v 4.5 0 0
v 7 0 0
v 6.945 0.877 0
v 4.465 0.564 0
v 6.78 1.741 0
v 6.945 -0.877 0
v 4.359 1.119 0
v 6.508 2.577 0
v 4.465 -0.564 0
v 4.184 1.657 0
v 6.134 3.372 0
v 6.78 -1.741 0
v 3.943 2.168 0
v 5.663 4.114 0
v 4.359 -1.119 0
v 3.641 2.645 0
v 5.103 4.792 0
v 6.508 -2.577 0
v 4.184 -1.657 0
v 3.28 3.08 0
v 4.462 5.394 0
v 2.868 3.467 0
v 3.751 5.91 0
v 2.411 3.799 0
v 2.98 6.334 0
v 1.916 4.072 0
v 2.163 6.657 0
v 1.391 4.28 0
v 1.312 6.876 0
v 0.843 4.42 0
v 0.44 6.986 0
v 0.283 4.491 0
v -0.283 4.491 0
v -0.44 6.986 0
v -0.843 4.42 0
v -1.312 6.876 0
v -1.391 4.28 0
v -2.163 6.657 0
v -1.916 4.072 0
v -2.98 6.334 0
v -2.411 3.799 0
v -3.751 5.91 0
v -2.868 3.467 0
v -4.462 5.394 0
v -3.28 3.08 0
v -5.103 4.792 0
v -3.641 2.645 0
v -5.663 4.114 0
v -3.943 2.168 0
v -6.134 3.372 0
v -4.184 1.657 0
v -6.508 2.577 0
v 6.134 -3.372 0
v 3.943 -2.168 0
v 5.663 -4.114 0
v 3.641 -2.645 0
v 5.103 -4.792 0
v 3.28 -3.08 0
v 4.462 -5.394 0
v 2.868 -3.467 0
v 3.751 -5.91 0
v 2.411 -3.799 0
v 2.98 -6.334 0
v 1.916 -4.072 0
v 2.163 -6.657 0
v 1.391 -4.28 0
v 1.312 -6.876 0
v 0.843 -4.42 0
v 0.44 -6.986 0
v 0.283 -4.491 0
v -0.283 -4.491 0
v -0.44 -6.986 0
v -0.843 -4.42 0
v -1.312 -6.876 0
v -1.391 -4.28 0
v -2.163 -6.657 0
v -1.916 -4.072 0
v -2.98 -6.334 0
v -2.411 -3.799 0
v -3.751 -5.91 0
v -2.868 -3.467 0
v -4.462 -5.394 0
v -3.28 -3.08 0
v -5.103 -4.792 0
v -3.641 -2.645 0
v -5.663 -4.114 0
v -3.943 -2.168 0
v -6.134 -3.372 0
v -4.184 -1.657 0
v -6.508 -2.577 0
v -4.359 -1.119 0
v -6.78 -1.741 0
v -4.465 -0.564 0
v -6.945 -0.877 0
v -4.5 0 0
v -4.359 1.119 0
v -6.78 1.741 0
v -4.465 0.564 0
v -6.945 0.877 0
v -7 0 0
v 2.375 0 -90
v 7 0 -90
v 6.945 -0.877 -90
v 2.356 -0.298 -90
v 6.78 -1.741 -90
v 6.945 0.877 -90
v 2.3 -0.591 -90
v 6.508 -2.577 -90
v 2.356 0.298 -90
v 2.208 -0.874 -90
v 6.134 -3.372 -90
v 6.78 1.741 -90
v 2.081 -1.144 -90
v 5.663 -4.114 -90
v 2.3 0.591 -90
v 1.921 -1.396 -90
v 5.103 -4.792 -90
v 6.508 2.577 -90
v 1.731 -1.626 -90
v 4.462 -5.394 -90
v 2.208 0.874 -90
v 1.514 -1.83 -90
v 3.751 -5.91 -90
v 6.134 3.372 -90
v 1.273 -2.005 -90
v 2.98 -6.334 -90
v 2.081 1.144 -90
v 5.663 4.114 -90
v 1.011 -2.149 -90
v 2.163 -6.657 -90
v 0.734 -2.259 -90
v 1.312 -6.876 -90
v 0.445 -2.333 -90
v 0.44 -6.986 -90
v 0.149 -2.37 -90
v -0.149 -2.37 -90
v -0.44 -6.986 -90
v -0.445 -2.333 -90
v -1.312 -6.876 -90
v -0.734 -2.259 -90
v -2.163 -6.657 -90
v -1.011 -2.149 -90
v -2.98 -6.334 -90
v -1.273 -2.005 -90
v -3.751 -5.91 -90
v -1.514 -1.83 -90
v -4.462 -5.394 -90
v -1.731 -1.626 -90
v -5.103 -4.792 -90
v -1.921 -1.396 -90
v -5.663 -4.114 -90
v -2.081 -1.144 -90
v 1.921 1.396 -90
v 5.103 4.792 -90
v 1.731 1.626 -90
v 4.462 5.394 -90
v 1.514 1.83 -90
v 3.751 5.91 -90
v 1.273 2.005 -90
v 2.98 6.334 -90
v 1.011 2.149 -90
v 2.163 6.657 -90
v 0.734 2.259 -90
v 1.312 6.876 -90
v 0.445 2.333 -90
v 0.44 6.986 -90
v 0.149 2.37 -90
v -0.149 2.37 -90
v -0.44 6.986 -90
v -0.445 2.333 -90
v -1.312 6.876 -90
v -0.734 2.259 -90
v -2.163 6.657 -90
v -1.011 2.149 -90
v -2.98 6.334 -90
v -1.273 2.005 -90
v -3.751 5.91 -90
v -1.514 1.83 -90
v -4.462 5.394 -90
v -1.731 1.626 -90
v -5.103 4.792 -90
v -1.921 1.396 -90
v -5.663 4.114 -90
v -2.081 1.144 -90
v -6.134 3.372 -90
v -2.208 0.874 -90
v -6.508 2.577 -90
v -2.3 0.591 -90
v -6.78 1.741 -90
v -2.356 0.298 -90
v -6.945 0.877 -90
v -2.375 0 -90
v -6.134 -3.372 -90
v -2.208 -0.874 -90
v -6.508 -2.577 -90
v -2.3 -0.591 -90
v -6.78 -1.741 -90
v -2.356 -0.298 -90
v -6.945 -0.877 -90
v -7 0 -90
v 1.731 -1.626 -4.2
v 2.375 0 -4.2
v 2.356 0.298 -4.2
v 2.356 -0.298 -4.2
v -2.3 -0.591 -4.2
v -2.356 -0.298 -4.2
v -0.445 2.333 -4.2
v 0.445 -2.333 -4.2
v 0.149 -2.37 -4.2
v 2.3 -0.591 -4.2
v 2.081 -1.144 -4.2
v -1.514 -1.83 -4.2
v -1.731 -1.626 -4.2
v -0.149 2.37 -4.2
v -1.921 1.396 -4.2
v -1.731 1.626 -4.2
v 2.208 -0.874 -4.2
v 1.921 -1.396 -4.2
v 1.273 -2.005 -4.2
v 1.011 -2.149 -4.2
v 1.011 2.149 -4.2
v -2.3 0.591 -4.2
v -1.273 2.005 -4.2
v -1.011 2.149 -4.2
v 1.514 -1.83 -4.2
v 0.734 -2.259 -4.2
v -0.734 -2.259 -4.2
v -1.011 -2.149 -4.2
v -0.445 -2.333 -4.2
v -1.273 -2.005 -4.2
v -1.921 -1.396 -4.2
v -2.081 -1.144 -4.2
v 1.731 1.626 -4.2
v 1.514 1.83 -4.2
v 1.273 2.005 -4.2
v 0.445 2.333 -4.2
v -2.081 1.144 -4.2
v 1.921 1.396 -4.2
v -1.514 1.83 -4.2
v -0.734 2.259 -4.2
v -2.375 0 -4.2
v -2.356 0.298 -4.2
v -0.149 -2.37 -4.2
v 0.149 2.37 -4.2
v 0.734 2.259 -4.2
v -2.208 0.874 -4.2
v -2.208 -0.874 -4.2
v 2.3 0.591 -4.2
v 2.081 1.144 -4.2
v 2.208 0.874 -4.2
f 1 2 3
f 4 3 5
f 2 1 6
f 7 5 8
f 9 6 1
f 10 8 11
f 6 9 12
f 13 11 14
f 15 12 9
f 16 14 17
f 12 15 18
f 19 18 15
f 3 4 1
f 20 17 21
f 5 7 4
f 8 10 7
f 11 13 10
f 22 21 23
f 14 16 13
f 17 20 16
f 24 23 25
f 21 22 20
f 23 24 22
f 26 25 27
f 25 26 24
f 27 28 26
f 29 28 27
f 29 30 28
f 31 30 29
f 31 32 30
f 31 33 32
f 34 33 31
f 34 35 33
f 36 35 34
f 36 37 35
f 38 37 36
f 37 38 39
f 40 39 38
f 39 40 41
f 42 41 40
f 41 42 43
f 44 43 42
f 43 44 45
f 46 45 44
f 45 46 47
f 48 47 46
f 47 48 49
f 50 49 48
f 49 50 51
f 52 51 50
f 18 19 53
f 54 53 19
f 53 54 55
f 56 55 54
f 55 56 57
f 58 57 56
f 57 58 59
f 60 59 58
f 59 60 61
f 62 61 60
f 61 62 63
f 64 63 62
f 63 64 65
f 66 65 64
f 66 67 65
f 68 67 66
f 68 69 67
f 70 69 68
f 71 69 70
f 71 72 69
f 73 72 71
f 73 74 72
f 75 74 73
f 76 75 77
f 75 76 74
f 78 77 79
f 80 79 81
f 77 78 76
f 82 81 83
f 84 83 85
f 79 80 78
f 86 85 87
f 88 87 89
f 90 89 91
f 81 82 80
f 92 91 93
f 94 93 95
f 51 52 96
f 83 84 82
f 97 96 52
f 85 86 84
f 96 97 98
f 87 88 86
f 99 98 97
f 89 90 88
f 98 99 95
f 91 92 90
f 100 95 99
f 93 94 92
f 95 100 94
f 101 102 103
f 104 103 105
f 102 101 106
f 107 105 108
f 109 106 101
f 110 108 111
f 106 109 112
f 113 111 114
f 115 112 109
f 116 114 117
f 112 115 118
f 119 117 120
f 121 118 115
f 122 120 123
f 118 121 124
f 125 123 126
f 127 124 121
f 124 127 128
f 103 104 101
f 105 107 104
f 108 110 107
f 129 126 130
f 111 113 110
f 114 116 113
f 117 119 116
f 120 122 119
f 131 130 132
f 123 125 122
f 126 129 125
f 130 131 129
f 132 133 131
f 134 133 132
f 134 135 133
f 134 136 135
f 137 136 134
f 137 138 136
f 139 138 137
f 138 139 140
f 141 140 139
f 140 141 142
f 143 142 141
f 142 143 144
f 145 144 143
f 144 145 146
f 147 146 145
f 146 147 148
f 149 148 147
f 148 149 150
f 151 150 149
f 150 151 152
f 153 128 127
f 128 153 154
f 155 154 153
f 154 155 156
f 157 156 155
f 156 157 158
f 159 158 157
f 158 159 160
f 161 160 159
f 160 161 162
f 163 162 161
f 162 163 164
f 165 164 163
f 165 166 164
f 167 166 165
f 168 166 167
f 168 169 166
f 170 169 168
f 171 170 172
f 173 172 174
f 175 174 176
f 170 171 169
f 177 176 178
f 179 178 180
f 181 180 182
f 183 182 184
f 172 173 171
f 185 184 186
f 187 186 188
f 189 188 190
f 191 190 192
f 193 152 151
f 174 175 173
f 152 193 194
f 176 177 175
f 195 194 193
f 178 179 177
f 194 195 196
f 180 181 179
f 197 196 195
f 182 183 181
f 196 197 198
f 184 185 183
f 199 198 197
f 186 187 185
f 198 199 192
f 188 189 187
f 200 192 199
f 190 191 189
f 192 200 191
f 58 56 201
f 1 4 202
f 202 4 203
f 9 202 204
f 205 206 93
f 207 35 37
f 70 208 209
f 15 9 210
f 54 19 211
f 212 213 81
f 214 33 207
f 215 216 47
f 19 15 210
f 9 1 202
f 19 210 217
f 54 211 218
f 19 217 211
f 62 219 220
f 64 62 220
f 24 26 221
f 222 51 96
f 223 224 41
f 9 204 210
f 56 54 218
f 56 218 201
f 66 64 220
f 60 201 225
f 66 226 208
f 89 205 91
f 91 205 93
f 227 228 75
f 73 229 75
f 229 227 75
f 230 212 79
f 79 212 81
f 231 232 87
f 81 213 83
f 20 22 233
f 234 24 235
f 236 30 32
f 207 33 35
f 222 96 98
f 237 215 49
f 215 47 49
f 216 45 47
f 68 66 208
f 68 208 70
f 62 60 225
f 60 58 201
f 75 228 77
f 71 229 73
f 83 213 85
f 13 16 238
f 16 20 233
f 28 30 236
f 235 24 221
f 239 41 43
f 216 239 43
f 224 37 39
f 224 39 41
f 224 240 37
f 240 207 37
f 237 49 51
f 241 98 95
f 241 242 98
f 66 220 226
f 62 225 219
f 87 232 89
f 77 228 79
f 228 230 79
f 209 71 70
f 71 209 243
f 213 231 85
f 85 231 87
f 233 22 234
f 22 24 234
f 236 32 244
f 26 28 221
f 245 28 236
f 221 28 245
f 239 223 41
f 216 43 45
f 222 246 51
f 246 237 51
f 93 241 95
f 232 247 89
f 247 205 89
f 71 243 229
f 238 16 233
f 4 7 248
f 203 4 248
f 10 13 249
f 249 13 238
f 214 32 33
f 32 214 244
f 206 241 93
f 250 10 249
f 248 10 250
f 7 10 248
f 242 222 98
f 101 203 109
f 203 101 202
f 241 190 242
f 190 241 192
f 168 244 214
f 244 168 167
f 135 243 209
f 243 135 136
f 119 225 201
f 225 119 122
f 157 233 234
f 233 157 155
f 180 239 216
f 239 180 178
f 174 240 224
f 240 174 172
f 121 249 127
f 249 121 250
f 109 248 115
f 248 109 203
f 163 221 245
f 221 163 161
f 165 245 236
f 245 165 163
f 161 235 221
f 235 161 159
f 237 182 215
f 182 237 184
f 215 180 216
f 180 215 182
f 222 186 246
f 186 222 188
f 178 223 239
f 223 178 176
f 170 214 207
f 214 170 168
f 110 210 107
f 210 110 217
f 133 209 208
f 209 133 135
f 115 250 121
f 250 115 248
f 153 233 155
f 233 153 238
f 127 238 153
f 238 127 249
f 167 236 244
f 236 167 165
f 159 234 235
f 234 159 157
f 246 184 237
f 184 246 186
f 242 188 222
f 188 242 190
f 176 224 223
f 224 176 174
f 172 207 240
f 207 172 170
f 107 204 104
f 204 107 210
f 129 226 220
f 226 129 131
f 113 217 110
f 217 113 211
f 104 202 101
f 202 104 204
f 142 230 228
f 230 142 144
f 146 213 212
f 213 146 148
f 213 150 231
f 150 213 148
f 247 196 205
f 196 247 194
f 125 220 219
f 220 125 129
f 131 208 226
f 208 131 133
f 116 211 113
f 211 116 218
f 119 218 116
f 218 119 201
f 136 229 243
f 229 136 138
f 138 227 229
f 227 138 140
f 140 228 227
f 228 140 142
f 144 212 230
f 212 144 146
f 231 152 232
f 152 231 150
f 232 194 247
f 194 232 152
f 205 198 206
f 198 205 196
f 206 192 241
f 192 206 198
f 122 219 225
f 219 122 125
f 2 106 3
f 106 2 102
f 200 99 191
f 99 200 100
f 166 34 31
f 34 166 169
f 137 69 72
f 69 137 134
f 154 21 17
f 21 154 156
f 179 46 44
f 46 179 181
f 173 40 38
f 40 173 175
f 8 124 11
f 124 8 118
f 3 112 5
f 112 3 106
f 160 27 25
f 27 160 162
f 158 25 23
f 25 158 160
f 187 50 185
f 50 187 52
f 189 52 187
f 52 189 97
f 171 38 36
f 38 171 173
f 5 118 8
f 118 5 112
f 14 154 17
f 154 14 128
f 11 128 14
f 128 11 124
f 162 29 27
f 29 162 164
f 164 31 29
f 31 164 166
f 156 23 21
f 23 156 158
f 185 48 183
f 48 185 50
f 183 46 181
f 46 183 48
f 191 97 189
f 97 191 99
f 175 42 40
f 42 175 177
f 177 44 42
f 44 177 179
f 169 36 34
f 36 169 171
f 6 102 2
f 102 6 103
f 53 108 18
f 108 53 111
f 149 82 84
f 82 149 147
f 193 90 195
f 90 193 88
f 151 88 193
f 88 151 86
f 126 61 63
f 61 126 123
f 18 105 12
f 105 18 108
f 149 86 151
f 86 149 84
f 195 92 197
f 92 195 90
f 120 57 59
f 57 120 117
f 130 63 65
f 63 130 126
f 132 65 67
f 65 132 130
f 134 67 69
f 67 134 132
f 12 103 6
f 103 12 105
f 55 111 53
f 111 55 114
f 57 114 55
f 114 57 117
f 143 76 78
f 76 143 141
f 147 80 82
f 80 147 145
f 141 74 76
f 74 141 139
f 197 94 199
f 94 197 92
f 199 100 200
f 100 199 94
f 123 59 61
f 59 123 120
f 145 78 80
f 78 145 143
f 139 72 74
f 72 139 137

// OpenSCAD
$fn = 50;


difference() {
	union() {
		translate(v = [0, 0, -90.0000000000]) {
			cylinder(h = 90, r = 7.0000000000);
		}
		cylinder(h = 0, r = 17.0000000000);
	}
	union() {
		translate(v = [0, 0, 0]) {
			rotate(a = [0, 0, 0]) {
				difference() {
					union() {
						#translate(v = [0, 0, -90.0000000000]) {
							cylinder(h = 90, r = 2.2500000000);
						}
						#translate(v = [0, 0, -4.2000000000]) {
							cylinder(h = 4.2000000000, r1 = 2.3750000000, r2 = 4.5000000000);
						}
						#translate(v = [0, 0, -90.0000000000]) {
							cylinder(h = 90, r = 2.3750000000);
						}
						#translate(v = [0, 0, -90.0000000000]) {
							cylinder(h = 90, r = 2.2500000000);
						}
					}
					union();
				}
			}
		}
	}
}
